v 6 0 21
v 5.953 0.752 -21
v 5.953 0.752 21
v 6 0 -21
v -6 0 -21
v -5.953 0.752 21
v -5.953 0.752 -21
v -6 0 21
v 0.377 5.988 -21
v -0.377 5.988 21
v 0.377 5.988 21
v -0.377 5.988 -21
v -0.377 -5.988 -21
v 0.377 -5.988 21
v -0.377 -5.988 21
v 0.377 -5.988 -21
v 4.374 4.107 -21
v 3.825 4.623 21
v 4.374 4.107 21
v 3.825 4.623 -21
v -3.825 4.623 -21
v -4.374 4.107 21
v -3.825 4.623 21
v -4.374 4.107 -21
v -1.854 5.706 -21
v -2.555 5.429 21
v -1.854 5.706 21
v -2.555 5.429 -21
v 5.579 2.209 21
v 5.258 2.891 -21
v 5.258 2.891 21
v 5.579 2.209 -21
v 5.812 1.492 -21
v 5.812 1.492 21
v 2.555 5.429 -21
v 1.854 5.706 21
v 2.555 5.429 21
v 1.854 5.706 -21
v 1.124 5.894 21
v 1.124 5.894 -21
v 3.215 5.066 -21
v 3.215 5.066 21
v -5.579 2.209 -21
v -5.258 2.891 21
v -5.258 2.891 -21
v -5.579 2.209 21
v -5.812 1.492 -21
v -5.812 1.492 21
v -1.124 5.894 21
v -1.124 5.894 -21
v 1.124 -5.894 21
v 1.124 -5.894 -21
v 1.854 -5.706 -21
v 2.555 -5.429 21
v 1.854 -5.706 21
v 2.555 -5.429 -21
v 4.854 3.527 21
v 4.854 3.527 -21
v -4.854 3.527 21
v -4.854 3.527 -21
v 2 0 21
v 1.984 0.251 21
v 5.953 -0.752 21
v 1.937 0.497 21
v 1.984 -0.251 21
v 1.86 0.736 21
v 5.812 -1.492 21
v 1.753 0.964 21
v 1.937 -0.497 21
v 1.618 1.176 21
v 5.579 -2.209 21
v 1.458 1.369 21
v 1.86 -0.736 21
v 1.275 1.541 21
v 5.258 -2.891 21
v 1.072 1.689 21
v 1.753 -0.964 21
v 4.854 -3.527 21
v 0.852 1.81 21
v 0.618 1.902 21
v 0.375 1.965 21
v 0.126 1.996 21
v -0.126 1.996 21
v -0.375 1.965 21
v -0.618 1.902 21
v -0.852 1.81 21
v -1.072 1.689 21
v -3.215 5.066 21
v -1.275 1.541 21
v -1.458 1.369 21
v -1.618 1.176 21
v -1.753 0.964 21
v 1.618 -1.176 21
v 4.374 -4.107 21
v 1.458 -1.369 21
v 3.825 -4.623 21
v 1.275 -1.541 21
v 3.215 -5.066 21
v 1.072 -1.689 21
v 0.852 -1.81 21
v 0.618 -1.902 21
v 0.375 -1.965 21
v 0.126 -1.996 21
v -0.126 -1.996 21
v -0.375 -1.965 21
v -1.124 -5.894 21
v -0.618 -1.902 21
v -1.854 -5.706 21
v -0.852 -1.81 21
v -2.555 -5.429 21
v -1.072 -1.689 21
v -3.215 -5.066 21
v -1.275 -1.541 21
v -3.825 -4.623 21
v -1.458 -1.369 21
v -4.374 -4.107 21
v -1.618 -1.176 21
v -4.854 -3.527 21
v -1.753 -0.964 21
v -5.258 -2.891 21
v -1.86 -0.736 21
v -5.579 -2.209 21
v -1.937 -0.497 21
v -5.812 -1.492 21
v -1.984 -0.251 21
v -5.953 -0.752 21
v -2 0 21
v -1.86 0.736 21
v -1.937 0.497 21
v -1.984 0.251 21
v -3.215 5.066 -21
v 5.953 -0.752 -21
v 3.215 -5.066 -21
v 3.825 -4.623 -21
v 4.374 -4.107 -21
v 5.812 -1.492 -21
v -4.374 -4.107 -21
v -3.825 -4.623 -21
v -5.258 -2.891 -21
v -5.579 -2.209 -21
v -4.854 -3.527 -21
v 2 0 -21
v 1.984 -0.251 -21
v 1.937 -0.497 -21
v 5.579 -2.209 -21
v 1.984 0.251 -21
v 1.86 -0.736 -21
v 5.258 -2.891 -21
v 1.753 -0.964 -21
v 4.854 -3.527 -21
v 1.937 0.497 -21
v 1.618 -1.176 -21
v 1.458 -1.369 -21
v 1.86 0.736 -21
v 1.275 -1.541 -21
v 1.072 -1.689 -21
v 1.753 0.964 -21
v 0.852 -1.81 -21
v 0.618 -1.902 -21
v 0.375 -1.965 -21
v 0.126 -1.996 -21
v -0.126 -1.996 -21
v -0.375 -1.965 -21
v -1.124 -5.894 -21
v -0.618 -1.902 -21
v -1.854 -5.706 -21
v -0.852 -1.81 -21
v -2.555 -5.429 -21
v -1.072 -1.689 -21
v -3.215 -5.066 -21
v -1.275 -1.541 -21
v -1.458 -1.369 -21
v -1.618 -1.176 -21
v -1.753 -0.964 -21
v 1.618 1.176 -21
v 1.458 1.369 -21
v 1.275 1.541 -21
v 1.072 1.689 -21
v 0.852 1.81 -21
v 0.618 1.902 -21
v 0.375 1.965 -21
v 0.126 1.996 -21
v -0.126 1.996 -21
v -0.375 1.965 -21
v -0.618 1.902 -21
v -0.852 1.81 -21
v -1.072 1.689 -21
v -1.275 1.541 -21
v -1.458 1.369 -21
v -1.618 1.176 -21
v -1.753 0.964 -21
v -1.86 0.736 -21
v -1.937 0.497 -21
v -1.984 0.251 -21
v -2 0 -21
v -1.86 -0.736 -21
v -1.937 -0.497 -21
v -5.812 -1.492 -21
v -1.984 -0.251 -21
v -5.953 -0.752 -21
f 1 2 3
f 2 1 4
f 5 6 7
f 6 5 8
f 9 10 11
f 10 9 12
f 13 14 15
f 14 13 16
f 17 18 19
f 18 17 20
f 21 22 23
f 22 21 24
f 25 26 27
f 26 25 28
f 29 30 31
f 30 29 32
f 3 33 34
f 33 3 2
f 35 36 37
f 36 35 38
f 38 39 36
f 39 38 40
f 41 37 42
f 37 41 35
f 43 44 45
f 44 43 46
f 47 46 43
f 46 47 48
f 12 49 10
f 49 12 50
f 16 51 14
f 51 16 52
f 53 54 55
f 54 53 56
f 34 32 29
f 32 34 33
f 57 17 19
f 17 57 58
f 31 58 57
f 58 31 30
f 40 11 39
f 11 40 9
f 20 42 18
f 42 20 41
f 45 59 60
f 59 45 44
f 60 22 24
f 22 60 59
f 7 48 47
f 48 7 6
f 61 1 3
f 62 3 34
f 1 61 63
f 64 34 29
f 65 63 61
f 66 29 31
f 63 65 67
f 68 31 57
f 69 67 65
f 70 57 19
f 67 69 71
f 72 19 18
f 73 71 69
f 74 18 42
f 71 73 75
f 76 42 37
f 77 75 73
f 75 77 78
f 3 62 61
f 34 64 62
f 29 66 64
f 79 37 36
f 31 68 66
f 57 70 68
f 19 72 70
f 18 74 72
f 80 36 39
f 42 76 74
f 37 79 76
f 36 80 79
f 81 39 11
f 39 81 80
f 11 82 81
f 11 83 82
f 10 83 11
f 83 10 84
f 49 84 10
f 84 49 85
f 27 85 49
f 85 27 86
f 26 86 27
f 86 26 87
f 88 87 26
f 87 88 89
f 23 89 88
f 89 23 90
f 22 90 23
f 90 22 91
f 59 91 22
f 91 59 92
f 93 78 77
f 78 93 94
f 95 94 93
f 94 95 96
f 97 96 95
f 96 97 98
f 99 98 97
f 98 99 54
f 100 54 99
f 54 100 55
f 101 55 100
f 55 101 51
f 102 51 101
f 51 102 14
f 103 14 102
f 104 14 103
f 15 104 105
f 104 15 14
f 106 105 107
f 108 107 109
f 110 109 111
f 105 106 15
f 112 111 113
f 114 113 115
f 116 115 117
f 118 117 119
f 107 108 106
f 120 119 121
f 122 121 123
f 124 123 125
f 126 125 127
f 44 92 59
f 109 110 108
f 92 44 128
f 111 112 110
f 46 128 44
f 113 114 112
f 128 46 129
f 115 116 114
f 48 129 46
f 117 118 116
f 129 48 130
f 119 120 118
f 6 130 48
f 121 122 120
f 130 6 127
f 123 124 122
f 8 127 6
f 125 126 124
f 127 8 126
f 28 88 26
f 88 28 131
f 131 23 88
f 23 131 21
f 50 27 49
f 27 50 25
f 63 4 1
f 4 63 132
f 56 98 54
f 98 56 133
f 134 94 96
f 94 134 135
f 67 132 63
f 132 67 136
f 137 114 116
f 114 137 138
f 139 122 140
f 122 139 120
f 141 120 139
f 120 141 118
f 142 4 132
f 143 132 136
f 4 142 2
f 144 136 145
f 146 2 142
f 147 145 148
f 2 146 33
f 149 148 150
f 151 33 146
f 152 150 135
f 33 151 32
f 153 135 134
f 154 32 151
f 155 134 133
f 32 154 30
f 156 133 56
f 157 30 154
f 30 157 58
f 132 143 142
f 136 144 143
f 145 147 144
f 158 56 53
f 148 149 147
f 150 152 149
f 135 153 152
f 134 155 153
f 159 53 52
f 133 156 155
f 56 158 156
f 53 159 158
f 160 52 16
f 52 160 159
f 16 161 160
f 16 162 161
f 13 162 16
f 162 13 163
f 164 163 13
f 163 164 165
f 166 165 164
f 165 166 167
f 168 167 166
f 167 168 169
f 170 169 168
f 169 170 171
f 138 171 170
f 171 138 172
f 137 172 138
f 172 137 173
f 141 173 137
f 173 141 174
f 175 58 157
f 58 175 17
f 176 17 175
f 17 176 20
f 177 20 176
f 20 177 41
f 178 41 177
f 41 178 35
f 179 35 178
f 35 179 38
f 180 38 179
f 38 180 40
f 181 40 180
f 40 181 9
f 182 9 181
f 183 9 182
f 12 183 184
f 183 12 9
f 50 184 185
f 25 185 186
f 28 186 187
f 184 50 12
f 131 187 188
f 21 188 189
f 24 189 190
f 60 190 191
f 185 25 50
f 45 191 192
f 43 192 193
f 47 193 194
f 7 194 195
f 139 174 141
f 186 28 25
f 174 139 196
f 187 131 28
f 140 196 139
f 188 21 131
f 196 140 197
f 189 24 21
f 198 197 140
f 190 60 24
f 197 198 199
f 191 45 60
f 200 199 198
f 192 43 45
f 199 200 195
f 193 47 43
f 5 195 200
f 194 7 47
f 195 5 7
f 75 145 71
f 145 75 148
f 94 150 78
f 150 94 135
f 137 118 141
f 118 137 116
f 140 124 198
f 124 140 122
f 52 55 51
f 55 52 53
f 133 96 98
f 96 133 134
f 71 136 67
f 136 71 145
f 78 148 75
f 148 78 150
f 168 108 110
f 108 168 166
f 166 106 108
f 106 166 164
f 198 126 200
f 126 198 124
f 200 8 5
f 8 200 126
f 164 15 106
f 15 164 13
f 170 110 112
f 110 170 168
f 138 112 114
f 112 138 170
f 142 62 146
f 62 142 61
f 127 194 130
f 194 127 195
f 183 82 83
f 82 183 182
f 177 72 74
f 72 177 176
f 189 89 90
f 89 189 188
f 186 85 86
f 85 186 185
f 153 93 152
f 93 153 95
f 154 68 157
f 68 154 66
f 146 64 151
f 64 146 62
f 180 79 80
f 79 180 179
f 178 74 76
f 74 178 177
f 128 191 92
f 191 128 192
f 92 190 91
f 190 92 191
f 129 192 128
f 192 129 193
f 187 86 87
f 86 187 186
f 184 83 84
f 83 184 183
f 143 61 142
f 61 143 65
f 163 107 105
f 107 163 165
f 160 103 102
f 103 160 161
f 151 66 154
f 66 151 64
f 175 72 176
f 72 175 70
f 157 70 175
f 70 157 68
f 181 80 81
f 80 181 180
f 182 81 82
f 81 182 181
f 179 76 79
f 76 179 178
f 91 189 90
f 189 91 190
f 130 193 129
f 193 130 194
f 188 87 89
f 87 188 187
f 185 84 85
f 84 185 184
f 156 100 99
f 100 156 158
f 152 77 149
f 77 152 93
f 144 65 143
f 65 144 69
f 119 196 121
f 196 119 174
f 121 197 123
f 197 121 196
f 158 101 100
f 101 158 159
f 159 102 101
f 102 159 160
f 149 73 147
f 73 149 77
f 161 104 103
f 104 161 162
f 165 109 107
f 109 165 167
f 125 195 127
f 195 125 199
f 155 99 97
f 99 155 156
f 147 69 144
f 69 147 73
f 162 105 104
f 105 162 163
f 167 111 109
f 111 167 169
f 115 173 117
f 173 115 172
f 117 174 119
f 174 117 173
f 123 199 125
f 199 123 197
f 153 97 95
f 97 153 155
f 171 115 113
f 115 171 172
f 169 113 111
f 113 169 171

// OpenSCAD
$fn = 50;


difference() {
	union() {
		translate(v = [0, 0, -21.0000000000]) {
			cylinder(h = 42, r = 6.0000000000);
		}
	}
	union() {
		translate(v = [0, 0, -100.0000000000]) {
			cylinder(h = 200, r = 2);
		}
	}
}
